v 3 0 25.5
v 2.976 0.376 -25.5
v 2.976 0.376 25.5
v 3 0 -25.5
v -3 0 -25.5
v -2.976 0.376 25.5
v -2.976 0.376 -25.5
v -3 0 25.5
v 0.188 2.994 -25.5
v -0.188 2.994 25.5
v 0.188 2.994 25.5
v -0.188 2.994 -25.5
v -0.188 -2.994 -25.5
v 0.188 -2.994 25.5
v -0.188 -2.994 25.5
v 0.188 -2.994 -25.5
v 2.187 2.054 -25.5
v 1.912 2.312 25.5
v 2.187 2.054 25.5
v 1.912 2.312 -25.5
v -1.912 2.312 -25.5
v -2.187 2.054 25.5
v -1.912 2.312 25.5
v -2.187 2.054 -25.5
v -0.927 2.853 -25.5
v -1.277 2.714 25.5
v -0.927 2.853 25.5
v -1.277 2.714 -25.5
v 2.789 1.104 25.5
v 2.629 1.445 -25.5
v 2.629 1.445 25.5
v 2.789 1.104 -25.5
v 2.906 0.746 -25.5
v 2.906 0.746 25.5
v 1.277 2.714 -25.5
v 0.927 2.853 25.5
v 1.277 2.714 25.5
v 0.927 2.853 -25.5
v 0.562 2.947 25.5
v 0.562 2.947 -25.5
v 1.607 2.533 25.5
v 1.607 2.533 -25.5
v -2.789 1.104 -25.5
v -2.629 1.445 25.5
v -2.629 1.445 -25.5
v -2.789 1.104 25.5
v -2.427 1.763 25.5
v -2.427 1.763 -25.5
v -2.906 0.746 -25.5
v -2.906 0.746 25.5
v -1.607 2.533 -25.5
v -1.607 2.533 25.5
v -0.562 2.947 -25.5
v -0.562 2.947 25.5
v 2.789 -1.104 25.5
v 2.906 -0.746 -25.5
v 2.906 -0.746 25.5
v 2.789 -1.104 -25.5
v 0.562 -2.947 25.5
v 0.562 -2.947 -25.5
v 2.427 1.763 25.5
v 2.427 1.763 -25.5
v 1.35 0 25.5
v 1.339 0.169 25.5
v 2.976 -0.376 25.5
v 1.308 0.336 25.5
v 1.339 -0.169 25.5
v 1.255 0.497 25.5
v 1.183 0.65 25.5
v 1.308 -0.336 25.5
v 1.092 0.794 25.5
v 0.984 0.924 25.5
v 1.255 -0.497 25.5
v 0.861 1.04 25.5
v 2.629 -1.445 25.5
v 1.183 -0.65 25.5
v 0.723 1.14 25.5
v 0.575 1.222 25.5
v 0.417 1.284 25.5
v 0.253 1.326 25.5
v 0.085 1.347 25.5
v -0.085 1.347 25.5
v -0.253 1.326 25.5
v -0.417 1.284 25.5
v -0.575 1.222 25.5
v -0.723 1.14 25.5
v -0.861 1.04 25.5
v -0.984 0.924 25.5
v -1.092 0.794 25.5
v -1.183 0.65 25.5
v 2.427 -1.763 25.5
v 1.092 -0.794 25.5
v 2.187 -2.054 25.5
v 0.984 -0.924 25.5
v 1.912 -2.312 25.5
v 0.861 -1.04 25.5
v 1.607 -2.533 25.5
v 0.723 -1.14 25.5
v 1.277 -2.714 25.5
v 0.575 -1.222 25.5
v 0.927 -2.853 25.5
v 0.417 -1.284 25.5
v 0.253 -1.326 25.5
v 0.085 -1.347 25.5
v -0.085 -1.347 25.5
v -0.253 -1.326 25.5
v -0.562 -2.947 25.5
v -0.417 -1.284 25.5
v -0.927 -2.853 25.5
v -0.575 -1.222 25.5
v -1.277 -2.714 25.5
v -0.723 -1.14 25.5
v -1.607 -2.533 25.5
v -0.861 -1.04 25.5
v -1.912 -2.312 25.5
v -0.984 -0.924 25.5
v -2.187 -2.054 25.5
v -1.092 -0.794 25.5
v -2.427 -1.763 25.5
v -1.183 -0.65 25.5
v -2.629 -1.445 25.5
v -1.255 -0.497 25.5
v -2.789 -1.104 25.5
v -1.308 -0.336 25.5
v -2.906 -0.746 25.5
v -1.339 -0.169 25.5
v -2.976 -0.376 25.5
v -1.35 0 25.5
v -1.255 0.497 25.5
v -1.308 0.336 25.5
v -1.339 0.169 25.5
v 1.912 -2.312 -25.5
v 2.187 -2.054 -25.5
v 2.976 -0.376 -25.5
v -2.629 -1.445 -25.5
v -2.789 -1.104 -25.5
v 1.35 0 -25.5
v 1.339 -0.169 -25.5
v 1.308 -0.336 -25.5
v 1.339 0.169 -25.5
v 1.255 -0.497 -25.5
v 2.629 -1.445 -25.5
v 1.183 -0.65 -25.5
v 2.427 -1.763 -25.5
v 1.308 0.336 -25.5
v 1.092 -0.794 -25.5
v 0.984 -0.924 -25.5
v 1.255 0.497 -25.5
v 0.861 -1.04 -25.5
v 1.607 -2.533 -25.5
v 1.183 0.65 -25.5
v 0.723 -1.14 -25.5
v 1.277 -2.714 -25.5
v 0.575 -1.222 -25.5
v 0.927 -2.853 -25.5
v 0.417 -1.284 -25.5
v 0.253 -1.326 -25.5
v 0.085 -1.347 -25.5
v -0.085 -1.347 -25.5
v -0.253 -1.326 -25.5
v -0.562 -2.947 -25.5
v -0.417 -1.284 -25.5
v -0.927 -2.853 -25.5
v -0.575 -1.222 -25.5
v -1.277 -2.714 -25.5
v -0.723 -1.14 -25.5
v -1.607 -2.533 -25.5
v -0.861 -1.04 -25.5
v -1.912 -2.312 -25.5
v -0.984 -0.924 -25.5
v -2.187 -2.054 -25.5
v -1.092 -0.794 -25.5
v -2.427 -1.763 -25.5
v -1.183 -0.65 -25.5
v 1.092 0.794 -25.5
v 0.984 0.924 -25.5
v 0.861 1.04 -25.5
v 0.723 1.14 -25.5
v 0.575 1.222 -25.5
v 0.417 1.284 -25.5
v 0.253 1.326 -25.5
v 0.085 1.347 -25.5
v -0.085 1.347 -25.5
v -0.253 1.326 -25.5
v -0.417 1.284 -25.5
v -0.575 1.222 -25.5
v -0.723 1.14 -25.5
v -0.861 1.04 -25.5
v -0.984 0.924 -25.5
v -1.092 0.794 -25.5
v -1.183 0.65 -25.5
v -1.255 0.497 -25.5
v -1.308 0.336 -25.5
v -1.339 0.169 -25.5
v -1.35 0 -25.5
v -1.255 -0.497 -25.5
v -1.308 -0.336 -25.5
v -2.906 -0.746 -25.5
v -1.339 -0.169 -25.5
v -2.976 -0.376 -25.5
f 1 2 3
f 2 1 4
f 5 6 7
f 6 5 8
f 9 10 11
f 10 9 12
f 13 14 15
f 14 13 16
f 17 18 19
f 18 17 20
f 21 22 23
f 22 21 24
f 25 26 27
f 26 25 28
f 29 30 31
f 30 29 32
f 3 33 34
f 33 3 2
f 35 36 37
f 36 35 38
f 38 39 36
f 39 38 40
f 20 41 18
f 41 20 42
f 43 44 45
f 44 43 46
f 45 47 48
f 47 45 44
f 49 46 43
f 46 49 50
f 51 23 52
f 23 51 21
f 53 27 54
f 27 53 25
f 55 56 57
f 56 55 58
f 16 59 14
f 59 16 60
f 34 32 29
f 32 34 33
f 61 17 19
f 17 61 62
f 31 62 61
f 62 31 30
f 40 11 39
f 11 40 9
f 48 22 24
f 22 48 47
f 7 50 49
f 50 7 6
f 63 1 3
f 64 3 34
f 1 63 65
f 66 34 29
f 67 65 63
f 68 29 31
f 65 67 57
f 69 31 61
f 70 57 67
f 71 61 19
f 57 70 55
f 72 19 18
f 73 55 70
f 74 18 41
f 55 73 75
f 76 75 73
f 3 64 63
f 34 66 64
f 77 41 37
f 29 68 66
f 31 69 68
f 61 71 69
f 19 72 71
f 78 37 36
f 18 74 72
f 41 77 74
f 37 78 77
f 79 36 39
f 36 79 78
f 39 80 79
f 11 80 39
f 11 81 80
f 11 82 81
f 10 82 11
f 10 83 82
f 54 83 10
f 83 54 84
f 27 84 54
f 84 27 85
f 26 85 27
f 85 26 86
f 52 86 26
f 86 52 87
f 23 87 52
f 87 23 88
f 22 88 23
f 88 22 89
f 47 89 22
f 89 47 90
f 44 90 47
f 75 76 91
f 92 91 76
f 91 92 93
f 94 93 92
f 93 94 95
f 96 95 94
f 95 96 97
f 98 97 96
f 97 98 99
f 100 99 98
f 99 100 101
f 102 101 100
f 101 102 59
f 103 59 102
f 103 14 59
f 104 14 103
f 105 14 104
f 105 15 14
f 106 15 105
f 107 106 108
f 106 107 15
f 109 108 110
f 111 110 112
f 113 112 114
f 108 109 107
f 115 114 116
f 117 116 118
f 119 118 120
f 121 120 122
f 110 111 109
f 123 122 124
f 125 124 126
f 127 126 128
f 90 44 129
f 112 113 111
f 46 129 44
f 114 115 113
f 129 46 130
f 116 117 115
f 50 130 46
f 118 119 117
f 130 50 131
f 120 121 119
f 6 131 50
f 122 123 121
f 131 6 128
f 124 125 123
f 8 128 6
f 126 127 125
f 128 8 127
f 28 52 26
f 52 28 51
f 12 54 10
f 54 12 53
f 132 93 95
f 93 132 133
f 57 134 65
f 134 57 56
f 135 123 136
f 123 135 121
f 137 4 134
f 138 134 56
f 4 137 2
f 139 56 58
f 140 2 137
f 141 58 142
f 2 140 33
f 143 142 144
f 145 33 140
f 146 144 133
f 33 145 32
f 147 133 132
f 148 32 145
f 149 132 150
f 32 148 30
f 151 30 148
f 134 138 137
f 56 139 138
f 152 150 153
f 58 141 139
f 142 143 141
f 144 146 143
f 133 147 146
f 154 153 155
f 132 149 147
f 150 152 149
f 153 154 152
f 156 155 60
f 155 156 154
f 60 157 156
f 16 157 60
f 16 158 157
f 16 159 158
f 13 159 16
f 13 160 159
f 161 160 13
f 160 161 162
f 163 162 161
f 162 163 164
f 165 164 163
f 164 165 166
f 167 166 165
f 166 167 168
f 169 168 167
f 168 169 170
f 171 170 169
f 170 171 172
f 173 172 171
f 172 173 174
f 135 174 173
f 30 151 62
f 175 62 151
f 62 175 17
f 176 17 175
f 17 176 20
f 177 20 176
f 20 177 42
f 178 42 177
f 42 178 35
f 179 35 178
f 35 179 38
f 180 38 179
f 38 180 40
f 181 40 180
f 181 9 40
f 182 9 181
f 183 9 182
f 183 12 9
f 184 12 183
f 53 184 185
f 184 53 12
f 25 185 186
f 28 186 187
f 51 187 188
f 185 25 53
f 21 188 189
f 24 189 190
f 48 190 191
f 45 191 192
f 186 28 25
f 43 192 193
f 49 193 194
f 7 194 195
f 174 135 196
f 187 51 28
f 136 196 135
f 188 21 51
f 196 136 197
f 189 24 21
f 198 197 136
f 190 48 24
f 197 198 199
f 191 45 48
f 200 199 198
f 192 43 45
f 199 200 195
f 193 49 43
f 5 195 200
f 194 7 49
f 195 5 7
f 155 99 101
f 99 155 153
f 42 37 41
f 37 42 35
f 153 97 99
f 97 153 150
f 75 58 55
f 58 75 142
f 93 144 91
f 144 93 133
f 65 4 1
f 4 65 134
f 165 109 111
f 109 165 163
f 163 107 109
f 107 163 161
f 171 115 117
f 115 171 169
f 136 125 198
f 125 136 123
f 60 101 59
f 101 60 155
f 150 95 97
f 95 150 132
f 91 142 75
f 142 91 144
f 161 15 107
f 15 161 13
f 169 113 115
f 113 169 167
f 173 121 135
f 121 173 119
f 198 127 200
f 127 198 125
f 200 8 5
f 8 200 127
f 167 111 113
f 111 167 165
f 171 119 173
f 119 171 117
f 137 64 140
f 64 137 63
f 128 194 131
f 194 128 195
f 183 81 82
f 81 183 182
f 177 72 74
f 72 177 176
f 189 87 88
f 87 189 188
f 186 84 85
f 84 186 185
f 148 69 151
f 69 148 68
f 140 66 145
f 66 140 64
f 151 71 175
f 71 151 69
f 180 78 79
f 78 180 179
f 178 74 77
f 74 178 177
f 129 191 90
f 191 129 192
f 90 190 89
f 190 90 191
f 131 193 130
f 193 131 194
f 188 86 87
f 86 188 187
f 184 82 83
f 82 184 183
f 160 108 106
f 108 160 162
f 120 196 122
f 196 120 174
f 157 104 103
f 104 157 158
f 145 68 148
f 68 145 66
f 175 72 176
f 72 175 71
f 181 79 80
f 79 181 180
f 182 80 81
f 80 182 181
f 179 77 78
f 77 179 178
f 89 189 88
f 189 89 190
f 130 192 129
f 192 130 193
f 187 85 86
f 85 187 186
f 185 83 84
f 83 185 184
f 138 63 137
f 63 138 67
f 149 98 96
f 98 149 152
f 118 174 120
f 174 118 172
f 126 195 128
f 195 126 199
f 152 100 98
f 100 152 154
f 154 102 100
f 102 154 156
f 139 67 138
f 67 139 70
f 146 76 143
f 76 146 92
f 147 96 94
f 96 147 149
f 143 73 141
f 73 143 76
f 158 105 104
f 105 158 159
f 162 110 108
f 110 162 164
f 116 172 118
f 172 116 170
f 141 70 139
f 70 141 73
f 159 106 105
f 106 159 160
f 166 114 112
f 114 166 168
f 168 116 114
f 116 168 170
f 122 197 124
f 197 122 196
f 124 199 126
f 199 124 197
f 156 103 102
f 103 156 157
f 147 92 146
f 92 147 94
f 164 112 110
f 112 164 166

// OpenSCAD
$fn = 50;


difference() {
	union() {
		translate(v = [0, 0, -25.5000000000]) {
			cylinder(h = 51, r = 3.0000000000);
		}
	}
	union() {
		translate(v = [0, 0, -100.0000000000]) {
			cylinder(h = 200, r = 1.3500000000);
		}
	}
}
